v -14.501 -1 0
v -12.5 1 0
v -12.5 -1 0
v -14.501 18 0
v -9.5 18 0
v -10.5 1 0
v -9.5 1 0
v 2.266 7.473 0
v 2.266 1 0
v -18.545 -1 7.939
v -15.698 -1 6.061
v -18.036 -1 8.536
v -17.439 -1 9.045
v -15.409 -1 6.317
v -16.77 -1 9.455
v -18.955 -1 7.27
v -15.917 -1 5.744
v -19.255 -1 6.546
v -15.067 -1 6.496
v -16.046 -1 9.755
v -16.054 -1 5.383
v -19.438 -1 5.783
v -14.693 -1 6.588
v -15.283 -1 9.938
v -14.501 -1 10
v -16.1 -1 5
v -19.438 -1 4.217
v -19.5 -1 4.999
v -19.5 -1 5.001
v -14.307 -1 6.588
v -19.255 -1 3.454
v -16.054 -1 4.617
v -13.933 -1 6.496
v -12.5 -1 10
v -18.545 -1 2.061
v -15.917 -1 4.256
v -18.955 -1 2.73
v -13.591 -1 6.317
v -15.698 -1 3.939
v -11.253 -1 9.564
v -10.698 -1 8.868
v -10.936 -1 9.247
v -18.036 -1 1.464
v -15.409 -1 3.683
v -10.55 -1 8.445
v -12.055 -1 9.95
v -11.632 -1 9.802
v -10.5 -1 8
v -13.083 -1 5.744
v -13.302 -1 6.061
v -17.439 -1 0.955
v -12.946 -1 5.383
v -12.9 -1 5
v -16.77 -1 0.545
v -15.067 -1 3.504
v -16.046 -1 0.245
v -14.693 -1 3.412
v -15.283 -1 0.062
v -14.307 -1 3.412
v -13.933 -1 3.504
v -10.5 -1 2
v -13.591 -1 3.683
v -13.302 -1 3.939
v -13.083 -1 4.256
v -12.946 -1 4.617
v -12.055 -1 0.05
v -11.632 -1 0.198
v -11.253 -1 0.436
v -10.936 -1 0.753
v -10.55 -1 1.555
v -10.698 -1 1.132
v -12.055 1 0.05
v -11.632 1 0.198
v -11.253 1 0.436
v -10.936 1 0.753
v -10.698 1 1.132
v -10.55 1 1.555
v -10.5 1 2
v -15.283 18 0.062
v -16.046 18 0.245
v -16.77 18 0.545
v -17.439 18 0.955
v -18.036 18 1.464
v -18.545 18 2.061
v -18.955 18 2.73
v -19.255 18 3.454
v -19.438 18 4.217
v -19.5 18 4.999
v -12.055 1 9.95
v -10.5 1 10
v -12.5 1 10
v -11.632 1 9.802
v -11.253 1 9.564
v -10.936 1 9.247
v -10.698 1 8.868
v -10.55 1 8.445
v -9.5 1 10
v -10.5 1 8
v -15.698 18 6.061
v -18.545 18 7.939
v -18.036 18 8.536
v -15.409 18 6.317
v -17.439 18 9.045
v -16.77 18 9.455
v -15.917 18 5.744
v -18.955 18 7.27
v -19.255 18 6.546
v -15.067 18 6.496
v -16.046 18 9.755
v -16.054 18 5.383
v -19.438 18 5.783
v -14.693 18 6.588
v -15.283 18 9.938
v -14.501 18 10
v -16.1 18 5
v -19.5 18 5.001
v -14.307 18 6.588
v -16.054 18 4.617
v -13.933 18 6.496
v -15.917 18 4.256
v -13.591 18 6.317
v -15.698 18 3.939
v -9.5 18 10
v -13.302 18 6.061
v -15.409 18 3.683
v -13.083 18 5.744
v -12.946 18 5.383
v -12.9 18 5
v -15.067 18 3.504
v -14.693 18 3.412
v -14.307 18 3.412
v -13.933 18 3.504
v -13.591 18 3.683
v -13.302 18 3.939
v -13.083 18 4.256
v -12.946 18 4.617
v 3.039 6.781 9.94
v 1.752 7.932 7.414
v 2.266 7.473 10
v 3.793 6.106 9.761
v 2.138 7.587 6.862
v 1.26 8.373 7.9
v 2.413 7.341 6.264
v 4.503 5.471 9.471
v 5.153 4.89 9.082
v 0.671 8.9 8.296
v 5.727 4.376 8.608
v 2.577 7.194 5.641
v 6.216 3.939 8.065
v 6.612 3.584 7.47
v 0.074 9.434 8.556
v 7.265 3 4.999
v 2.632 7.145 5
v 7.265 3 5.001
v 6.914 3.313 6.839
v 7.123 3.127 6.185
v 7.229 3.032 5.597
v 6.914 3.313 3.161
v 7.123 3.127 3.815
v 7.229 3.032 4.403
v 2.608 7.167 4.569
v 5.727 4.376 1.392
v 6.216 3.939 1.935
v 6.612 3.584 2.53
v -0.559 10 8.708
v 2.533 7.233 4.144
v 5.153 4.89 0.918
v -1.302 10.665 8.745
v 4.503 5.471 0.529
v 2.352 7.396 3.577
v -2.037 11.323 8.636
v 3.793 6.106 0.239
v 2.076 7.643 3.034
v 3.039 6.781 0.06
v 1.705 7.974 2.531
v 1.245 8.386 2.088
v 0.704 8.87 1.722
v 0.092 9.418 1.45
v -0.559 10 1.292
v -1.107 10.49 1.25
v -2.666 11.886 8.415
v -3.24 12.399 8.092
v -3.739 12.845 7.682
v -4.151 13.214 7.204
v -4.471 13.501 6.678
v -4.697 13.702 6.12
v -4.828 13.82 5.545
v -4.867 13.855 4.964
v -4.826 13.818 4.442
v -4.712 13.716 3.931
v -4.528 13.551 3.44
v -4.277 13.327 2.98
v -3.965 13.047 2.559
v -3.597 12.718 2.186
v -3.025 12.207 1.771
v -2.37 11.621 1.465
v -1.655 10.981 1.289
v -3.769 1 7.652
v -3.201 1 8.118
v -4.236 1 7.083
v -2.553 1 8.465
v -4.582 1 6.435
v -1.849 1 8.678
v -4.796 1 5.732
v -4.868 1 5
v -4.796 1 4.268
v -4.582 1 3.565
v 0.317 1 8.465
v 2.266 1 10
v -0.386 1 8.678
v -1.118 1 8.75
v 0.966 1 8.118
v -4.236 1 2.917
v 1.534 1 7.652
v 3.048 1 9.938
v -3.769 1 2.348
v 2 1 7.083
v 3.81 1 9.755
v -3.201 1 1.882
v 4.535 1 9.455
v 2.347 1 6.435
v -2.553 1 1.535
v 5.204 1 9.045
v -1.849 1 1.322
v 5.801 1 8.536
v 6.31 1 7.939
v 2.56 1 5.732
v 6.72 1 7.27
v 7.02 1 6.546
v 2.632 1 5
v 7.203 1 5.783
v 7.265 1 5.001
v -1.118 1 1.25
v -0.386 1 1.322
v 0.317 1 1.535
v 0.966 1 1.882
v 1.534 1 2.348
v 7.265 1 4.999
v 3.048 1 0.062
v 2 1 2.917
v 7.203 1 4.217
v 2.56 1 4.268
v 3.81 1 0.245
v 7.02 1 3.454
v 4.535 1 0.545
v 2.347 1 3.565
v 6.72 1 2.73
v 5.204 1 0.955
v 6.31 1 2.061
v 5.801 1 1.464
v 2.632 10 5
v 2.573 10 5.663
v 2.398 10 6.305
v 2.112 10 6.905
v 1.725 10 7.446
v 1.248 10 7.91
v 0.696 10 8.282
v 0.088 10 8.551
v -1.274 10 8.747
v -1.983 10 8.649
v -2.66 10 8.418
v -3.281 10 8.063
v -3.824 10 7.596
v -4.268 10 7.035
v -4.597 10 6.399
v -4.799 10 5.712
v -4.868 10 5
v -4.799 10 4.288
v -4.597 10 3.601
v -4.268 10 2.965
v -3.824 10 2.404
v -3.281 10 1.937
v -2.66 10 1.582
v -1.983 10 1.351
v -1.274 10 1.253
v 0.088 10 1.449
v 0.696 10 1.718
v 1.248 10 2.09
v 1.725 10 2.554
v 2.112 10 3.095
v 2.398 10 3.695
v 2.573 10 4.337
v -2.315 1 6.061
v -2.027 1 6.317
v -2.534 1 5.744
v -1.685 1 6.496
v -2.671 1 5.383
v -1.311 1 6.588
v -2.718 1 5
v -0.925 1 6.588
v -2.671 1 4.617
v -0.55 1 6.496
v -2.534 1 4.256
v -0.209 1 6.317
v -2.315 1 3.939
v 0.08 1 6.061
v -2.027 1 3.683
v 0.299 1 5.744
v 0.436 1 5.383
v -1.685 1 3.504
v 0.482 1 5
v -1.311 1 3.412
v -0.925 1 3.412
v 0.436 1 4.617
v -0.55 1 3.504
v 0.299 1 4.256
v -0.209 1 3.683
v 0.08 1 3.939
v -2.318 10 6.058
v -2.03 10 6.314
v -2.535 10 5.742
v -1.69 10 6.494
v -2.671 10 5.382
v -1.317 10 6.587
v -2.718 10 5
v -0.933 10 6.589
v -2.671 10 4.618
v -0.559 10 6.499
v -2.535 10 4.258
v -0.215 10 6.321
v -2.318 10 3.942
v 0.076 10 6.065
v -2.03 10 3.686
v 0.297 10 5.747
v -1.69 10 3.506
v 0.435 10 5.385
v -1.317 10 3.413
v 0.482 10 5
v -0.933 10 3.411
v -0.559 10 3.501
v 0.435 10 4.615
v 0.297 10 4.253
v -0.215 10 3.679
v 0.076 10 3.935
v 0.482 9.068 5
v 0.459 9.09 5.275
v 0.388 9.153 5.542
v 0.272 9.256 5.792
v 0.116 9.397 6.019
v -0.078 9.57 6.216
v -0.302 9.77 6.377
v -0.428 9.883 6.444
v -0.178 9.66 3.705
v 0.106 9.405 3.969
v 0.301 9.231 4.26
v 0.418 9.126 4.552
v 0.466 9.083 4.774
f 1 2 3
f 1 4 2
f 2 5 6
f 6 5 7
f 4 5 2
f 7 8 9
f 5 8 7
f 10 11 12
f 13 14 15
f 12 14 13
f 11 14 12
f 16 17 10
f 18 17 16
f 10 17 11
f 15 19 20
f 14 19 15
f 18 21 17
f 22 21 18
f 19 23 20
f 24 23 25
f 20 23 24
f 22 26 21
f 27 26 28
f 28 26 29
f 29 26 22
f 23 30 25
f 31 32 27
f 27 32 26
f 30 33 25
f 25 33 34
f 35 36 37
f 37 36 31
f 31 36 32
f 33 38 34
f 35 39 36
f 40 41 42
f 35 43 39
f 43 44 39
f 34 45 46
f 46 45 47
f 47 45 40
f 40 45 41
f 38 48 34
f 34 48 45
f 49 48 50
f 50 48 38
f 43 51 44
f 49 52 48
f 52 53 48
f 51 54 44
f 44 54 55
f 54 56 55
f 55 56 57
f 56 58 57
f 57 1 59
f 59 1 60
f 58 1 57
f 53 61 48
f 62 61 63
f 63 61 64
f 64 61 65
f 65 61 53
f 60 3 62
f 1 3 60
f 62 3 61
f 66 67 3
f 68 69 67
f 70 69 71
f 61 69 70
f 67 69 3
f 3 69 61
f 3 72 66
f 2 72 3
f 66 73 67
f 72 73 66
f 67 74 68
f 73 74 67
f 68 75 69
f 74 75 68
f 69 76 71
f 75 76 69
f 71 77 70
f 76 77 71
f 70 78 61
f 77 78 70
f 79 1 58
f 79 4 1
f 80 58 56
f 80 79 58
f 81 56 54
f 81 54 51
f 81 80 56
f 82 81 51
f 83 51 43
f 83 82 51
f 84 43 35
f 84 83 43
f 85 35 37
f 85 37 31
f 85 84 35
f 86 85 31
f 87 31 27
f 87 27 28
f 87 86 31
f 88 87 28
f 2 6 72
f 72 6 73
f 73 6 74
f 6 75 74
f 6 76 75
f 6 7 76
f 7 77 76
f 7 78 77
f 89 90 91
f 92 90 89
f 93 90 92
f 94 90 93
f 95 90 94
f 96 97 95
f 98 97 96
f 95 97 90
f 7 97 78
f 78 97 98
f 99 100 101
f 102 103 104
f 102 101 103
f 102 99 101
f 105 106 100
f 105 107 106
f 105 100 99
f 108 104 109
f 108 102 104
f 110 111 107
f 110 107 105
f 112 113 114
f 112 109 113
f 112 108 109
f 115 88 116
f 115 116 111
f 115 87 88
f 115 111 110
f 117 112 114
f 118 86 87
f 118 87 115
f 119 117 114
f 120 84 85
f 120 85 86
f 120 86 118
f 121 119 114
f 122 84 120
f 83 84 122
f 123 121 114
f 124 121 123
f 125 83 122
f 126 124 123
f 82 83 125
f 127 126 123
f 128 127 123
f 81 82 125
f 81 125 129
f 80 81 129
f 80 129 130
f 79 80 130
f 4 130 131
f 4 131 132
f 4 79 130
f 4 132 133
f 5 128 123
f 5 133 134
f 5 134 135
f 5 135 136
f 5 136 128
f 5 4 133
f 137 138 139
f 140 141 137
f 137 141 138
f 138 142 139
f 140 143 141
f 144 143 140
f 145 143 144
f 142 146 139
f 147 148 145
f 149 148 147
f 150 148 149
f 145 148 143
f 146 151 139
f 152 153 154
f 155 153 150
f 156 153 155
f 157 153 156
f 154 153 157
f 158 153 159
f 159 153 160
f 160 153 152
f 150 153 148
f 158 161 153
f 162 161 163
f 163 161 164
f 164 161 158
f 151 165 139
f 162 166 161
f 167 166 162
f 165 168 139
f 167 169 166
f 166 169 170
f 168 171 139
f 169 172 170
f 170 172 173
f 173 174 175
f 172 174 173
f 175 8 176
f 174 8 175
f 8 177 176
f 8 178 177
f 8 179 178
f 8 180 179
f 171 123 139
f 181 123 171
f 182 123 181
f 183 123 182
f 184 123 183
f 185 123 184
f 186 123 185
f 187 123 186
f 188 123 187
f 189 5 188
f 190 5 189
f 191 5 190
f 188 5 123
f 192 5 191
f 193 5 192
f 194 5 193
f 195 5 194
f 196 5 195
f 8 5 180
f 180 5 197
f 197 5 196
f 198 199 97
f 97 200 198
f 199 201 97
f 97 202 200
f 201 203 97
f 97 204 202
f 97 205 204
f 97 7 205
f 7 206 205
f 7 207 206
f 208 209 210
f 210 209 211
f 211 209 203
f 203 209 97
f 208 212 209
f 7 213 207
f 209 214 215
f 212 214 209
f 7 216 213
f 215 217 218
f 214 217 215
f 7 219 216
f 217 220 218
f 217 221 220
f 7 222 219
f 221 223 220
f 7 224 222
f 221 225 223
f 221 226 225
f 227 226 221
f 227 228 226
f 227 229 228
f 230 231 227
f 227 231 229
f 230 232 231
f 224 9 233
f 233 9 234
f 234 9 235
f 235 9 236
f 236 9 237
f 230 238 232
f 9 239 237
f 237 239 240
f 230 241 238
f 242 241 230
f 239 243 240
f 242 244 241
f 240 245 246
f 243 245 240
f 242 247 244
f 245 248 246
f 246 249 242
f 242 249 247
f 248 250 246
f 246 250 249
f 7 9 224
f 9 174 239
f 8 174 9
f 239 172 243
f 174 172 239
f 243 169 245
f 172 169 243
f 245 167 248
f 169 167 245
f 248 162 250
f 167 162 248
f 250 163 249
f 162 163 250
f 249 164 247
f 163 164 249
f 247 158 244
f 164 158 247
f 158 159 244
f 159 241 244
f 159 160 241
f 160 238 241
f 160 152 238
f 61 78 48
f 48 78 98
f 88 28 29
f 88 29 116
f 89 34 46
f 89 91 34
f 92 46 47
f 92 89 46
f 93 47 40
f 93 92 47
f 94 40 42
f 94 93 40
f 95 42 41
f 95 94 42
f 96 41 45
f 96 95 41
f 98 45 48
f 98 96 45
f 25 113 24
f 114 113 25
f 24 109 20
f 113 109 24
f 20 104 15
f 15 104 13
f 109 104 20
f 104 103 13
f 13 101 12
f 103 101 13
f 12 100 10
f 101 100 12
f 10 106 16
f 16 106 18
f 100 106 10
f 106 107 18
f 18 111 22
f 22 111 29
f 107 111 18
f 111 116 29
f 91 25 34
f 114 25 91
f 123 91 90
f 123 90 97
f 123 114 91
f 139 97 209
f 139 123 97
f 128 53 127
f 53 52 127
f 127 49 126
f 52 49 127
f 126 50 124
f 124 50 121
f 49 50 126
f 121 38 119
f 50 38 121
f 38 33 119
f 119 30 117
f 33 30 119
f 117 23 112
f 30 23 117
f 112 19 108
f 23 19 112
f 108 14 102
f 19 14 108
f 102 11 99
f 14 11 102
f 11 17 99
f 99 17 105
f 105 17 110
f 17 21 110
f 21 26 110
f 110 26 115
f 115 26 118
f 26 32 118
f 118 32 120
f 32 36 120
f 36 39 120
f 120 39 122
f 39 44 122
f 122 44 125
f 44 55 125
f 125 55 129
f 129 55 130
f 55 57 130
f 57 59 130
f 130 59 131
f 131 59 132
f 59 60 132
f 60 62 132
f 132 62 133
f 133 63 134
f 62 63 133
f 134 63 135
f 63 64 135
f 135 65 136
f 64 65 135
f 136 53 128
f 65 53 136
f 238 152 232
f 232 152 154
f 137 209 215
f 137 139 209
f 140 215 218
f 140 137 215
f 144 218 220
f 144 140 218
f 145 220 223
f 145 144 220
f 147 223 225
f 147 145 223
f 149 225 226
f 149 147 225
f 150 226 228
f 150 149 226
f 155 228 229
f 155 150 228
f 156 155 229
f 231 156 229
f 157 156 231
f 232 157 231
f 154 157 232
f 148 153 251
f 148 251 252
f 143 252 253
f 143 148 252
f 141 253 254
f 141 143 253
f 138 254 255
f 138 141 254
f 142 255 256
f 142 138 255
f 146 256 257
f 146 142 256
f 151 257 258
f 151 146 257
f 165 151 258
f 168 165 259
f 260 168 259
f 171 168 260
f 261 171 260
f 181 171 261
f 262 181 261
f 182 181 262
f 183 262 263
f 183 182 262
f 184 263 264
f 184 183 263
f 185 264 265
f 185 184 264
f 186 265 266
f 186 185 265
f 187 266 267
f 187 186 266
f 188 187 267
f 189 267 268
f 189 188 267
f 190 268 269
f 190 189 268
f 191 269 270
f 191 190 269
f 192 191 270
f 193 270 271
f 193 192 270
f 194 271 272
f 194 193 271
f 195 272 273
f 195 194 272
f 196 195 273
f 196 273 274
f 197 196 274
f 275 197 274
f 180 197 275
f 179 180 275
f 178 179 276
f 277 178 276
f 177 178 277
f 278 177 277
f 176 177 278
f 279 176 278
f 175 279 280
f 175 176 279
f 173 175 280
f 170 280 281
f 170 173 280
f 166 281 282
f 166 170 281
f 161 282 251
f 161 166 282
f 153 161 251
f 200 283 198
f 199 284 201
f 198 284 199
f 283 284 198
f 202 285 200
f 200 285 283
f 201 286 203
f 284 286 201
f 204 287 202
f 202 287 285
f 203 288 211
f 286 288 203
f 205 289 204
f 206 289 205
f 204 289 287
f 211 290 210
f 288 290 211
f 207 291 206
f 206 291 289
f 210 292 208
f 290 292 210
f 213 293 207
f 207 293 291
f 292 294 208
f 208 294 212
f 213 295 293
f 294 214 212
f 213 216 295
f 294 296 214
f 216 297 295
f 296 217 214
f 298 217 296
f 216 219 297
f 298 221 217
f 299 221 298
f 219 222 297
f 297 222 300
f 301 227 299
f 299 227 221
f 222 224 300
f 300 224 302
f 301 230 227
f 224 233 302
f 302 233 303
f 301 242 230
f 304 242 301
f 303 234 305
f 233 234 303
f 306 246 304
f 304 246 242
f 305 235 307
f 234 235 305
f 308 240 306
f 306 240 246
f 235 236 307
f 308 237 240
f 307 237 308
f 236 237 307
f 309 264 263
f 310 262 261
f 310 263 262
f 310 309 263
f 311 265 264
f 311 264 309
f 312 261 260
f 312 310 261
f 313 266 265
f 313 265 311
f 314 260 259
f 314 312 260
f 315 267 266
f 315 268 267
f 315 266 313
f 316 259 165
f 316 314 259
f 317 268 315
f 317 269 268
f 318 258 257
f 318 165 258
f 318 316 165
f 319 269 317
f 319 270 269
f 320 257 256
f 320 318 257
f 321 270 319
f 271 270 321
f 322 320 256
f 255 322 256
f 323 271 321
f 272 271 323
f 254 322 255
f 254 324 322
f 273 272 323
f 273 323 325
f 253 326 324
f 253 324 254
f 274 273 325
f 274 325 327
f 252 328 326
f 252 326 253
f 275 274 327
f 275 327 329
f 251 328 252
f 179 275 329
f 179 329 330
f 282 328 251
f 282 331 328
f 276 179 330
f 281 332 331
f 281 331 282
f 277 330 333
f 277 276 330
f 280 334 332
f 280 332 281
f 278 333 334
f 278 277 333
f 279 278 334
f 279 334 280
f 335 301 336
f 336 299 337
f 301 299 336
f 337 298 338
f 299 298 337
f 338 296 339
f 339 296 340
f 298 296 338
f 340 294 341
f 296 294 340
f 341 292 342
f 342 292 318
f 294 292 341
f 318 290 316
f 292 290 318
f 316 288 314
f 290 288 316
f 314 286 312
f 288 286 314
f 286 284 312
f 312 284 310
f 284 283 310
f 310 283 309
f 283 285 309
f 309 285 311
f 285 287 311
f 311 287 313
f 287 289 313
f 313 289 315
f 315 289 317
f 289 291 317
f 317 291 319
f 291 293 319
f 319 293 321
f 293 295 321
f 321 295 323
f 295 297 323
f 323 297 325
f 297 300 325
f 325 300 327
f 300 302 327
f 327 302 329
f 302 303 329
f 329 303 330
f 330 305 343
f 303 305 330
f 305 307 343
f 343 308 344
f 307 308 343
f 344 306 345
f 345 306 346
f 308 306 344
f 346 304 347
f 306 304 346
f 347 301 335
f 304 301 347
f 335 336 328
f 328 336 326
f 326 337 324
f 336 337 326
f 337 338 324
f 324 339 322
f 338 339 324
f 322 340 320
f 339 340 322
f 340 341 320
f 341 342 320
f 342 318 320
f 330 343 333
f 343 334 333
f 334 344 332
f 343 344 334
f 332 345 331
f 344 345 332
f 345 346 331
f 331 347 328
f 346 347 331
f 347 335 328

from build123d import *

# Parameters (mm, degrees)
PAD_DEPTH         = 10
SKETCH001_R       = 1.6
POCKET_DEPTH      = 19.001
SKETCH003_R       = 3.75
SKETCH003_R_2     = 1.6
PAD001_DEPTH      = 17
PAD001_FACE15_R   = 3.75
PAD001_FACE15_R_2 = 1.6
POCKET001_DEPTH   = 8
FILLET_R          = 4.999
FILLET_FACE4_W    = 2
FILLET_FACE4_H    = 10
POCKET002_DEPTH   = 1
FILLET001_R       = 2


with BuildPart() as part:
    # Sketch → Pad (new body)
    with BuildSketch(Plane.XY):
        Polygon((-19.5, -1), (-19.5, 18), (-9.5, 18), (7.264706, 3), (7.264706, 1), (-9.5, 1), (-9.5, -1), align=None)
    extrude(amount=PAD_DEPTH)

    # Sketch001 (on Face3 of Pad) → Pocket (cut, through all)
    with BuildSketch(Plane.XZ.offset(1)):
        with Locations((-14.5, 5)):
            Circle(SKETCH001_R)
        with Locations((-1.117647, 5)):
            Circle(SKETCH001_R)
    extrude(amount=-POCKET_DEPTH, mode=Mode.SUBTRACT)

    # Sketch003 (on Face1 of Pocket) → Pad001 (join)
    with BuildSketch(Plane.XZ.offset(-1)):
        with Locations((-1.117647, 5)):
            Circle(SKETCH003_R)
        with Locations((-1.117647, 5)):
            Circle(SKETCH003_R_2, mode=Mode.SUBTRACT)
    extrude(amount=-PAD001_DEPTH)

    # Pad001 Face15 → Pocket001 (cut)
    with BuildSketch(Plane(origin=(-1.117647, 18, 5), x_dir=(1, 0, 0), z_dir=(0, 1, 0))):
        Circle(PAD001_FACE15_R)
        Circle(PAD001_FACE15_R_2, mode=Mode.SUBTRACT)
    extrude(amount=-POCKET001_DEPTH, mode=Mode.SUBTRACT)

    # Fillet
    fillet_edges = [part.edges().sort_by_distance(p)[0] for p in [
        (-19.5, 8.5, 10),
        (-19.5, 8.5, 0),
        (7.264706, 2, 10),
        (7.264706, 2, 0),
    ]]
    fillet(fillet_edges, radius=FILLET_R)

    # Fillet Face4 → Pocket002 (cut)
    with BuildSketch(Plane(origin=(-9.5, 0, 5), x_dir=(0, -1, 0), z_dir=(1, 0, 0))):
        Rectangle(FILLET_FACE4_W, FILLET_FACE4_H)
    extrude(amount=-POCKET002_DEPTH, mode=Mode.SUBTRACT)

    # Fillet001
    fillet001_edges = [part.edges().sort_by_distance(p)[0] for p in [
        (-10.5, 0, 0),
        (-10.5, 0, 10),
    ]]
    fillet(fillet001_edges, radius=FILLET001_R)


solid = part.part
